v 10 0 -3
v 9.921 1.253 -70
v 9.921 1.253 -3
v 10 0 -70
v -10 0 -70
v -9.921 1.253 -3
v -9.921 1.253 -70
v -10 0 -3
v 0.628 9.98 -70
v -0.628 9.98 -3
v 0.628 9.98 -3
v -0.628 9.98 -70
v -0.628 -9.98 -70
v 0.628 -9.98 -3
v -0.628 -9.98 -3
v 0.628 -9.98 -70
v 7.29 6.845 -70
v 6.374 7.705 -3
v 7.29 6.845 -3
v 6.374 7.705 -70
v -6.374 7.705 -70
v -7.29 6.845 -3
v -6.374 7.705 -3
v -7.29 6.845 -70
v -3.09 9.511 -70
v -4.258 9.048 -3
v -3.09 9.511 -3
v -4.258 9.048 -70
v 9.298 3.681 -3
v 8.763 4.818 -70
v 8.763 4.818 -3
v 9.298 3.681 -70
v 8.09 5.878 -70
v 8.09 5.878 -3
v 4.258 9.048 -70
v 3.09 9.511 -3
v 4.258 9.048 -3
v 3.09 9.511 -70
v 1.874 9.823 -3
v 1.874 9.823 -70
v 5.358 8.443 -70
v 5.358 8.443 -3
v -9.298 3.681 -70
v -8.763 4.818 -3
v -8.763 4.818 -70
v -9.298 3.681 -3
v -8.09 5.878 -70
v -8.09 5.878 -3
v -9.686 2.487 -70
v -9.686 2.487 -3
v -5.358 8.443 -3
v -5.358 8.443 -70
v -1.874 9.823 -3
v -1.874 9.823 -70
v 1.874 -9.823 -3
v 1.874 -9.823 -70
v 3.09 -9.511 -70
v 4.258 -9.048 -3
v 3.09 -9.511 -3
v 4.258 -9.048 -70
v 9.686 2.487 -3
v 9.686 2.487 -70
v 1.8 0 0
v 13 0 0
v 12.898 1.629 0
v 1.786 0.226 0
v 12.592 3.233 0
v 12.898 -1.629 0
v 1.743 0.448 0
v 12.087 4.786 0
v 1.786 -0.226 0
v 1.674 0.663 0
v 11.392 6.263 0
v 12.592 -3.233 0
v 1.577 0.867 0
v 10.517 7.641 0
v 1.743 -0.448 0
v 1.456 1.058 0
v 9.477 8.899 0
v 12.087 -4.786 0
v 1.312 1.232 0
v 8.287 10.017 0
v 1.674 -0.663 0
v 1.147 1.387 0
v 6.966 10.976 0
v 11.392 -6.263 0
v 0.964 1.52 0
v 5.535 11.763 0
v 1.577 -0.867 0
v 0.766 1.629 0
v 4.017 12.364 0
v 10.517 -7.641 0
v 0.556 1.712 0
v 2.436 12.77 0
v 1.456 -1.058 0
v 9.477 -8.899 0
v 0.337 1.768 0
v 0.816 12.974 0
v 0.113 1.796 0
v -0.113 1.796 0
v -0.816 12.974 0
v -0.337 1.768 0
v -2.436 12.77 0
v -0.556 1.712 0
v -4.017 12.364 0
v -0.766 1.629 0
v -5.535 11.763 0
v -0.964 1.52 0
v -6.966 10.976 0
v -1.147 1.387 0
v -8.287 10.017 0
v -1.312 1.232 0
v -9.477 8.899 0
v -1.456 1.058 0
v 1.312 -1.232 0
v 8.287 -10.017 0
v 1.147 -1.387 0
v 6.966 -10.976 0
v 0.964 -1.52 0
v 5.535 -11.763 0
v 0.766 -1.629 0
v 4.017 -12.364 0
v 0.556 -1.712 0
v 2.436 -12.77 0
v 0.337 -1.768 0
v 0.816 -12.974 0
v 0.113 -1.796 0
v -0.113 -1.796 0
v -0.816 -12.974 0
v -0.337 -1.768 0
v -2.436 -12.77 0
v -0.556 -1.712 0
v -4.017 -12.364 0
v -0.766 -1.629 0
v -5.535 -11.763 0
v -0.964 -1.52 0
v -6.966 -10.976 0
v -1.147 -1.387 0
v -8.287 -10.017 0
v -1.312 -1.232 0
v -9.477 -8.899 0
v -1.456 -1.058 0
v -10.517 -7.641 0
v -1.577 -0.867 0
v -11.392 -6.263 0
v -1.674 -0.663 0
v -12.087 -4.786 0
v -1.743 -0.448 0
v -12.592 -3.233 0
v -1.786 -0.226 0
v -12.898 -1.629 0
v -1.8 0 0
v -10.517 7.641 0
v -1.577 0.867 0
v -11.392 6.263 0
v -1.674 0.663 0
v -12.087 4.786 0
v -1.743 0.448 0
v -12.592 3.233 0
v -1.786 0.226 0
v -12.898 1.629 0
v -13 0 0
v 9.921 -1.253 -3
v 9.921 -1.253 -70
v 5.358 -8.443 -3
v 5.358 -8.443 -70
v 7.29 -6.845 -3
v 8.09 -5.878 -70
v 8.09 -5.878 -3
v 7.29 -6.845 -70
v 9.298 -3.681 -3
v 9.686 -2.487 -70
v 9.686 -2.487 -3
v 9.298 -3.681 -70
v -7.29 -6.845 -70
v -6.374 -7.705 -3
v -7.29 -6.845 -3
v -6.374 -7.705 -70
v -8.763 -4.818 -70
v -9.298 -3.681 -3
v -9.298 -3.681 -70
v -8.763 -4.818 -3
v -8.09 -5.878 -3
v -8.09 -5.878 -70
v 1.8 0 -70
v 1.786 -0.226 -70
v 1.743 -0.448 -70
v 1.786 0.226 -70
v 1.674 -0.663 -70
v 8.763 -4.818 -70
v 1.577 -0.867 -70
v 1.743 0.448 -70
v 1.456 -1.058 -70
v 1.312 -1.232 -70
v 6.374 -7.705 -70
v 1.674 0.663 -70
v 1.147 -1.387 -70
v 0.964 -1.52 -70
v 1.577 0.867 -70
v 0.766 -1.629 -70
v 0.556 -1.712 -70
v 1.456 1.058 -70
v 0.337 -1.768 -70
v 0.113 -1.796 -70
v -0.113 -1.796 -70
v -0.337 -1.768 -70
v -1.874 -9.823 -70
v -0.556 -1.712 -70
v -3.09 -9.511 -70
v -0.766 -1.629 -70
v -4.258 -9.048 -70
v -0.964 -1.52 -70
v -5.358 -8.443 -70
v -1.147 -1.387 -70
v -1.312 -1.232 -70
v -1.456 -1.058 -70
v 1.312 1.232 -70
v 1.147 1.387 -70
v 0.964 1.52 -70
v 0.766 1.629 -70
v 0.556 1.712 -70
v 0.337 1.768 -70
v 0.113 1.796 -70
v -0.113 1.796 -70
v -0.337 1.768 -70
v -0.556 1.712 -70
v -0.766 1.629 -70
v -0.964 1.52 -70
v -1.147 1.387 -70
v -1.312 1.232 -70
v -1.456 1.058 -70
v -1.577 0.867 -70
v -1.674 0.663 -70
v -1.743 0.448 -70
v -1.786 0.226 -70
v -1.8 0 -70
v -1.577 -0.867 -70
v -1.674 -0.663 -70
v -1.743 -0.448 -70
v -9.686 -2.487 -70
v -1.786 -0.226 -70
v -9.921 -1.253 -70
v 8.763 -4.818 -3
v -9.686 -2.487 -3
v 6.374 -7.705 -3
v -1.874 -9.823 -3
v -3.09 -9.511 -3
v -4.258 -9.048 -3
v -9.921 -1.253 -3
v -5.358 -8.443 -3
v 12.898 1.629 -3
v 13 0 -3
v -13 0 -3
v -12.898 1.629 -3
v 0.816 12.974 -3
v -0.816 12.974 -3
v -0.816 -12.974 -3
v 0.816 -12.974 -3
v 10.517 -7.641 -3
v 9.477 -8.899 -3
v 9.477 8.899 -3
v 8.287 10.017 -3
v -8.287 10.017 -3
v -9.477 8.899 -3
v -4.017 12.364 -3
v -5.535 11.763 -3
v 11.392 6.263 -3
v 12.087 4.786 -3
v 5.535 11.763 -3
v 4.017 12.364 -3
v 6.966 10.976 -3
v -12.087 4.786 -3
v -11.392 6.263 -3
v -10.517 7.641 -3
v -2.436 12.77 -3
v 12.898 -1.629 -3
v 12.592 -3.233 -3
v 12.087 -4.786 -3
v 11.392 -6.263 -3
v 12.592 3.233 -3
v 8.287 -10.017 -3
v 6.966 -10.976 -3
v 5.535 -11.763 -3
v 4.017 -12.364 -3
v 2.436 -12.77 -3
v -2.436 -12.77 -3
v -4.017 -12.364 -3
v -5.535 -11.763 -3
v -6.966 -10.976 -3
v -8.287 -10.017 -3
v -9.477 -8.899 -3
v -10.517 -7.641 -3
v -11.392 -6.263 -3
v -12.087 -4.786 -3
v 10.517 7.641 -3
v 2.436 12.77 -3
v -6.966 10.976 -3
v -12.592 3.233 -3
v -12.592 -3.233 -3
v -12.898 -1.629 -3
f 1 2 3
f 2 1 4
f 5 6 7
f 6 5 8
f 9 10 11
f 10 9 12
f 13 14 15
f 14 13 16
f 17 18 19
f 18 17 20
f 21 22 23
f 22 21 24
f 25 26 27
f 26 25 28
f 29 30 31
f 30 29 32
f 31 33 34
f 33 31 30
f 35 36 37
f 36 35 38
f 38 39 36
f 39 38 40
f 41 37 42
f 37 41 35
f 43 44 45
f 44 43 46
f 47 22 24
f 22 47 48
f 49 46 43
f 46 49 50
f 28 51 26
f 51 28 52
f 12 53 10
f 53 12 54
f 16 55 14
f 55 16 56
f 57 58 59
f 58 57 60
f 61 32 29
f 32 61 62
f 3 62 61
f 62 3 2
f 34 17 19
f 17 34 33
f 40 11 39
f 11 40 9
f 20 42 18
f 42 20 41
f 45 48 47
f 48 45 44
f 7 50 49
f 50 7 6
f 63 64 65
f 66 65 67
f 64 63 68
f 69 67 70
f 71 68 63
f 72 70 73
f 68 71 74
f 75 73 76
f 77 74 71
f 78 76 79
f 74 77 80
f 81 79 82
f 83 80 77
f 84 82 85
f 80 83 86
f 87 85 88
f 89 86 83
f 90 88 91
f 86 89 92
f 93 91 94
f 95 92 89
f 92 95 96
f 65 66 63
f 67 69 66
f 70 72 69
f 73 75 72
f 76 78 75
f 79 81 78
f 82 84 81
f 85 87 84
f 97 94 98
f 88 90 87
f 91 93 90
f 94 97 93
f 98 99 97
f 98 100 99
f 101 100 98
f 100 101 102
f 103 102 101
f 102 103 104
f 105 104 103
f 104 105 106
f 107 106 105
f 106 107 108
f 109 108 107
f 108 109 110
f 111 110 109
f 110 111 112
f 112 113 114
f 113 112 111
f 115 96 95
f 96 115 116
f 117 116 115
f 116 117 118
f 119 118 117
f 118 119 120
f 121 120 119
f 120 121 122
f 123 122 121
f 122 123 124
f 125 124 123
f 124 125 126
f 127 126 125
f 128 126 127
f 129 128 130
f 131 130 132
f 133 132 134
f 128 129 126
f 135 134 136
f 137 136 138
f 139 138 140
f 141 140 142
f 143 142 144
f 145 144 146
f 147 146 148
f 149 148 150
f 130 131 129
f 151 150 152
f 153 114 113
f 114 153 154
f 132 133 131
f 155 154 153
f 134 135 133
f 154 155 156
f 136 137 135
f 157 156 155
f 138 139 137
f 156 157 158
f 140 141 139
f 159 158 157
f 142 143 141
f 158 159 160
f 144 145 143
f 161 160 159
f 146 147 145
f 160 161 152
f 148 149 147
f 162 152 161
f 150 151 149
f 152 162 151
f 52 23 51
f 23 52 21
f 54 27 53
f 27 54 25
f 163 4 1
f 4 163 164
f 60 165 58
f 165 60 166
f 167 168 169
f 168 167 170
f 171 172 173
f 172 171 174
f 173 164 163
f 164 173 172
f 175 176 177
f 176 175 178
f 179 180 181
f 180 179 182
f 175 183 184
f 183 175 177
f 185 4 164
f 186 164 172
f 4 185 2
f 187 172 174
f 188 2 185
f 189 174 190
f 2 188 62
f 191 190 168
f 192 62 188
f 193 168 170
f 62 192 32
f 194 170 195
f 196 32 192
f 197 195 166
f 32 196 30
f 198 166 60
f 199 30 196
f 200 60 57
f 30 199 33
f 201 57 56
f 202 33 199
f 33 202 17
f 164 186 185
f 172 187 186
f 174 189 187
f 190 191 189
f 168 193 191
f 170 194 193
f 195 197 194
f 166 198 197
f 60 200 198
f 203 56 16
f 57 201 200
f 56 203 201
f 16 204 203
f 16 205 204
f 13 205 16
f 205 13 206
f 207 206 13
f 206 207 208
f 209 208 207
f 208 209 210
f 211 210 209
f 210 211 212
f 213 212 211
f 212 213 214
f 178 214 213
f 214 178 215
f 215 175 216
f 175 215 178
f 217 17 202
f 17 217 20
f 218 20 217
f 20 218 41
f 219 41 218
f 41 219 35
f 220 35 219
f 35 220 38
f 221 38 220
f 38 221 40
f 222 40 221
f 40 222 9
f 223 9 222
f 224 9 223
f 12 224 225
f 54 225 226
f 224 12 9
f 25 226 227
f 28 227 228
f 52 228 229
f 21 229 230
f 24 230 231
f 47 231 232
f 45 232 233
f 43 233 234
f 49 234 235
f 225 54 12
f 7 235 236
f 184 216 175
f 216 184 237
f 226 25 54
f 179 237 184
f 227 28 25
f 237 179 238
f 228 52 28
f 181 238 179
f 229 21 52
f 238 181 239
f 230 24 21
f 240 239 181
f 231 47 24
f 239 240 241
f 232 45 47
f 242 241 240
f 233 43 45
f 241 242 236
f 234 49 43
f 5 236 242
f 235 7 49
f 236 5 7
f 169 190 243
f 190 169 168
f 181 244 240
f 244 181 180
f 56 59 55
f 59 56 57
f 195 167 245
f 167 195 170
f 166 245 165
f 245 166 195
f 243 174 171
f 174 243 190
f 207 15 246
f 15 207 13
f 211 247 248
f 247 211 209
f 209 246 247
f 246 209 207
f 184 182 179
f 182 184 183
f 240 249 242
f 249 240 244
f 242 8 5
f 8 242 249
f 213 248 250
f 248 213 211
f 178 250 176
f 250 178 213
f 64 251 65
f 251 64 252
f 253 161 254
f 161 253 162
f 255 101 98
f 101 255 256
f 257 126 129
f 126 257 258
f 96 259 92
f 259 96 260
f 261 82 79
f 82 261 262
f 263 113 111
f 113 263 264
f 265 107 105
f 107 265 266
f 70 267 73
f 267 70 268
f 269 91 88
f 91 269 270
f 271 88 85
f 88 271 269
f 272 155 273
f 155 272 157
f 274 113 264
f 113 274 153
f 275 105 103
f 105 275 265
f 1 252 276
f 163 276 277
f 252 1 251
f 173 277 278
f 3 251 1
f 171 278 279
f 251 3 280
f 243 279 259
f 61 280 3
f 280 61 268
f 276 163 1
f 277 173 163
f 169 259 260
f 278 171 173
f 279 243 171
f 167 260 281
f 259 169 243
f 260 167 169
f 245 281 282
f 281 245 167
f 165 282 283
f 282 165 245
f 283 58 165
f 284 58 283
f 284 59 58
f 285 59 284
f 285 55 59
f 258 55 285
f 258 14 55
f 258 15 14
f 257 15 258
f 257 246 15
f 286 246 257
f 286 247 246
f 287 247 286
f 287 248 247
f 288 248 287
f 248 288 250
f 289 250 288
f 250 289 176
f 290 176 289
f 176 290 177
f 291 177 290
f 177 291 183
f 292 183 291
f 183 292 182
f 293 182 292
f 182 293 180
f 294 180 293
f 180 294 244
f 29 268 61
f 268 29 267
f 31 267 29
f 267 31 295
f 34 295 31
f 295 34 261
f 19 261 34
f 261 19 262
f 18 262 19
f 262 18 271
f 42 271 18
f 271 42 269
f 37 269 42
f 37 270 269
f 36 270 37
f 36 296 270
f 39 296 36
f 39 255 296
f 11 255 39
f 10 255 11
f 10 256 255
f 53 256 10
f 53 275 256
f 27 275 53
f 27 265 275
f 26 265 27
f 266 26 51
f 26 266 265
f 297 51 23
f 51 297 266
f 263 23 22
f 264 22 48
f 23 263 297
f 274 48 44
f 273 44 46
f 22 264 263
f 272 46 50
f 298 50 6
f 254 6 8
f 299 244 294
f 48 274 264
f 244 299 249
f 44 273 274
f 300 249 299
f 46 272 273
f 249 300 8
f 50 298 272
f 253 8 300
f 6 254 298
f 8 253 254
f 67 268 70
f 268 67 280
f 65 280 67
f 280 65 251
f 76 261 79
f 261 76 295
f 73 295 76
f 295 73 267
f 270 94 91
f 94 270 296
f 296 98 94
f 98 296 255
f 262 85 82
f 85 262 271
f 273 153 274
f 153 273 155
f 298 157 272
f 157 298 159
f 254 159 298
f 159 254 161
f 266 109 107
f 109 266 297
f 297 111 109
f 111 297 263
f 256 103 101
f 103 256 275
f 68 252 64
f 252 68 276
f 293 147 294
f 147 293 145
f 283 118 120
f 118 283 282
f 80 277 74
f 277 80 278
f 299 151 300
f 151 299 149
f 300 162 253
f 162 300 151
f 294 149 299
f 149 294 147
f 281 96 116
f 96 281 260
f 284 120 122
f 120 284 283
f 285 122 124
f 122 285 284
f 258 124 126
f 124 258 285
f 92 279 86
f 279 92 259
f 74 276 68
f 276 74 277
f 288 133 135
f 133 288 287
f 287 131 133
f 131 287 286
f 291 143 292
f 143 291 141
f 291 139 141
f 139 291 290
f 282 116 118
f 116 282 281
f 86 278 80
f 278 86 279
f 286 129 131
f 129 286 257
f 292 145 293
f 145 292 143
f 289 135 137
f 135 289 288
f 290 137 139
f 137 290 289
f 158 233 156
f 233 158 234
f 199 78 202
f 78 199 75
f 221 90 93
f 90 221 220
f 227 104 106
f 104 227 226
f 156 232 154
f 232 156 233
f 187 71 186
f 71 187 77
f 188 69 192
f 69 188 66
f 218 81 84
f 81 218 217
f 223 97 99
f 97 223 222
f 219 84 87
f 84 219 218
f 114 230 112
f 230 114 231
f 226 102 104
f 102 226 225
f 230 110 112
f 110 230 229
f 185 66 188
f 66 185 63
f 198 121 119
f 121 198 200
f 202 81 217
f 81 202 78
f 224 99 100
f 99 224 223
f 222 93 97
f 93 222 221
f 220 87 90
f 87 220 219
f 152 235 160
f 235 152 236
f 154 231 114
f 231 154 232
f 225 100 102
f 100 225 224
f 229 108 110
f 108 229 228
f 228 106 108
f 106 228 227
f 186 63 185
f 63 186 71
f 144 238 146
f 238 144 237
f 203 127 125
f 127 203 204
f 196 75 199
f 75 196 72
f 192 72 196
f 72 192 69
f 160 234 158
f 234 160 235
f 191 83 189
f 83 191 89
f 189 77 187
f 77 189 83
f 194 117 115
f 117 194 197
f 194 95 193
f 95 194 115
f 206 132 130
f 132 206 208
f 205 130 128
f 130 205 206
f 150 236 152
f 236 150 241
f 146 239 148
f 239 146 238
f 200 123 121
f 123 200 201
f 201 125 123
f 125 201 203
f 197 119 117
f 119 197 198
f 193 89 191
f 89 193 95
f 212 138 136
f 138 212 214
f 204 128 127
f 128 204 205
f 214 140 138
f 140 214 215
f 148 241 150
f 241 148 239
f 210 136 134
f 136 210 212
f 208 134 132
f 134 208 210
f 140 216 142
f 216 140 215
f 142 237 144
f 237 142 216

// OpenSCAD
$fn = 50;


difference() {
	union() {
		translate(v = [0, 0, -70.0000000000]) {
			cylinder(h = 70, r = 10.0000000000);
		}
		translate(v = [0, 0, -3.0000000000]) {
			cylinder(h = 3, r = 13.0000000000);
		}
	}
	union() {
		#translate(v = [0, 0, -70]) {
			cylinder(h = 70, r = 1.8000000000);
		}
	}
}
